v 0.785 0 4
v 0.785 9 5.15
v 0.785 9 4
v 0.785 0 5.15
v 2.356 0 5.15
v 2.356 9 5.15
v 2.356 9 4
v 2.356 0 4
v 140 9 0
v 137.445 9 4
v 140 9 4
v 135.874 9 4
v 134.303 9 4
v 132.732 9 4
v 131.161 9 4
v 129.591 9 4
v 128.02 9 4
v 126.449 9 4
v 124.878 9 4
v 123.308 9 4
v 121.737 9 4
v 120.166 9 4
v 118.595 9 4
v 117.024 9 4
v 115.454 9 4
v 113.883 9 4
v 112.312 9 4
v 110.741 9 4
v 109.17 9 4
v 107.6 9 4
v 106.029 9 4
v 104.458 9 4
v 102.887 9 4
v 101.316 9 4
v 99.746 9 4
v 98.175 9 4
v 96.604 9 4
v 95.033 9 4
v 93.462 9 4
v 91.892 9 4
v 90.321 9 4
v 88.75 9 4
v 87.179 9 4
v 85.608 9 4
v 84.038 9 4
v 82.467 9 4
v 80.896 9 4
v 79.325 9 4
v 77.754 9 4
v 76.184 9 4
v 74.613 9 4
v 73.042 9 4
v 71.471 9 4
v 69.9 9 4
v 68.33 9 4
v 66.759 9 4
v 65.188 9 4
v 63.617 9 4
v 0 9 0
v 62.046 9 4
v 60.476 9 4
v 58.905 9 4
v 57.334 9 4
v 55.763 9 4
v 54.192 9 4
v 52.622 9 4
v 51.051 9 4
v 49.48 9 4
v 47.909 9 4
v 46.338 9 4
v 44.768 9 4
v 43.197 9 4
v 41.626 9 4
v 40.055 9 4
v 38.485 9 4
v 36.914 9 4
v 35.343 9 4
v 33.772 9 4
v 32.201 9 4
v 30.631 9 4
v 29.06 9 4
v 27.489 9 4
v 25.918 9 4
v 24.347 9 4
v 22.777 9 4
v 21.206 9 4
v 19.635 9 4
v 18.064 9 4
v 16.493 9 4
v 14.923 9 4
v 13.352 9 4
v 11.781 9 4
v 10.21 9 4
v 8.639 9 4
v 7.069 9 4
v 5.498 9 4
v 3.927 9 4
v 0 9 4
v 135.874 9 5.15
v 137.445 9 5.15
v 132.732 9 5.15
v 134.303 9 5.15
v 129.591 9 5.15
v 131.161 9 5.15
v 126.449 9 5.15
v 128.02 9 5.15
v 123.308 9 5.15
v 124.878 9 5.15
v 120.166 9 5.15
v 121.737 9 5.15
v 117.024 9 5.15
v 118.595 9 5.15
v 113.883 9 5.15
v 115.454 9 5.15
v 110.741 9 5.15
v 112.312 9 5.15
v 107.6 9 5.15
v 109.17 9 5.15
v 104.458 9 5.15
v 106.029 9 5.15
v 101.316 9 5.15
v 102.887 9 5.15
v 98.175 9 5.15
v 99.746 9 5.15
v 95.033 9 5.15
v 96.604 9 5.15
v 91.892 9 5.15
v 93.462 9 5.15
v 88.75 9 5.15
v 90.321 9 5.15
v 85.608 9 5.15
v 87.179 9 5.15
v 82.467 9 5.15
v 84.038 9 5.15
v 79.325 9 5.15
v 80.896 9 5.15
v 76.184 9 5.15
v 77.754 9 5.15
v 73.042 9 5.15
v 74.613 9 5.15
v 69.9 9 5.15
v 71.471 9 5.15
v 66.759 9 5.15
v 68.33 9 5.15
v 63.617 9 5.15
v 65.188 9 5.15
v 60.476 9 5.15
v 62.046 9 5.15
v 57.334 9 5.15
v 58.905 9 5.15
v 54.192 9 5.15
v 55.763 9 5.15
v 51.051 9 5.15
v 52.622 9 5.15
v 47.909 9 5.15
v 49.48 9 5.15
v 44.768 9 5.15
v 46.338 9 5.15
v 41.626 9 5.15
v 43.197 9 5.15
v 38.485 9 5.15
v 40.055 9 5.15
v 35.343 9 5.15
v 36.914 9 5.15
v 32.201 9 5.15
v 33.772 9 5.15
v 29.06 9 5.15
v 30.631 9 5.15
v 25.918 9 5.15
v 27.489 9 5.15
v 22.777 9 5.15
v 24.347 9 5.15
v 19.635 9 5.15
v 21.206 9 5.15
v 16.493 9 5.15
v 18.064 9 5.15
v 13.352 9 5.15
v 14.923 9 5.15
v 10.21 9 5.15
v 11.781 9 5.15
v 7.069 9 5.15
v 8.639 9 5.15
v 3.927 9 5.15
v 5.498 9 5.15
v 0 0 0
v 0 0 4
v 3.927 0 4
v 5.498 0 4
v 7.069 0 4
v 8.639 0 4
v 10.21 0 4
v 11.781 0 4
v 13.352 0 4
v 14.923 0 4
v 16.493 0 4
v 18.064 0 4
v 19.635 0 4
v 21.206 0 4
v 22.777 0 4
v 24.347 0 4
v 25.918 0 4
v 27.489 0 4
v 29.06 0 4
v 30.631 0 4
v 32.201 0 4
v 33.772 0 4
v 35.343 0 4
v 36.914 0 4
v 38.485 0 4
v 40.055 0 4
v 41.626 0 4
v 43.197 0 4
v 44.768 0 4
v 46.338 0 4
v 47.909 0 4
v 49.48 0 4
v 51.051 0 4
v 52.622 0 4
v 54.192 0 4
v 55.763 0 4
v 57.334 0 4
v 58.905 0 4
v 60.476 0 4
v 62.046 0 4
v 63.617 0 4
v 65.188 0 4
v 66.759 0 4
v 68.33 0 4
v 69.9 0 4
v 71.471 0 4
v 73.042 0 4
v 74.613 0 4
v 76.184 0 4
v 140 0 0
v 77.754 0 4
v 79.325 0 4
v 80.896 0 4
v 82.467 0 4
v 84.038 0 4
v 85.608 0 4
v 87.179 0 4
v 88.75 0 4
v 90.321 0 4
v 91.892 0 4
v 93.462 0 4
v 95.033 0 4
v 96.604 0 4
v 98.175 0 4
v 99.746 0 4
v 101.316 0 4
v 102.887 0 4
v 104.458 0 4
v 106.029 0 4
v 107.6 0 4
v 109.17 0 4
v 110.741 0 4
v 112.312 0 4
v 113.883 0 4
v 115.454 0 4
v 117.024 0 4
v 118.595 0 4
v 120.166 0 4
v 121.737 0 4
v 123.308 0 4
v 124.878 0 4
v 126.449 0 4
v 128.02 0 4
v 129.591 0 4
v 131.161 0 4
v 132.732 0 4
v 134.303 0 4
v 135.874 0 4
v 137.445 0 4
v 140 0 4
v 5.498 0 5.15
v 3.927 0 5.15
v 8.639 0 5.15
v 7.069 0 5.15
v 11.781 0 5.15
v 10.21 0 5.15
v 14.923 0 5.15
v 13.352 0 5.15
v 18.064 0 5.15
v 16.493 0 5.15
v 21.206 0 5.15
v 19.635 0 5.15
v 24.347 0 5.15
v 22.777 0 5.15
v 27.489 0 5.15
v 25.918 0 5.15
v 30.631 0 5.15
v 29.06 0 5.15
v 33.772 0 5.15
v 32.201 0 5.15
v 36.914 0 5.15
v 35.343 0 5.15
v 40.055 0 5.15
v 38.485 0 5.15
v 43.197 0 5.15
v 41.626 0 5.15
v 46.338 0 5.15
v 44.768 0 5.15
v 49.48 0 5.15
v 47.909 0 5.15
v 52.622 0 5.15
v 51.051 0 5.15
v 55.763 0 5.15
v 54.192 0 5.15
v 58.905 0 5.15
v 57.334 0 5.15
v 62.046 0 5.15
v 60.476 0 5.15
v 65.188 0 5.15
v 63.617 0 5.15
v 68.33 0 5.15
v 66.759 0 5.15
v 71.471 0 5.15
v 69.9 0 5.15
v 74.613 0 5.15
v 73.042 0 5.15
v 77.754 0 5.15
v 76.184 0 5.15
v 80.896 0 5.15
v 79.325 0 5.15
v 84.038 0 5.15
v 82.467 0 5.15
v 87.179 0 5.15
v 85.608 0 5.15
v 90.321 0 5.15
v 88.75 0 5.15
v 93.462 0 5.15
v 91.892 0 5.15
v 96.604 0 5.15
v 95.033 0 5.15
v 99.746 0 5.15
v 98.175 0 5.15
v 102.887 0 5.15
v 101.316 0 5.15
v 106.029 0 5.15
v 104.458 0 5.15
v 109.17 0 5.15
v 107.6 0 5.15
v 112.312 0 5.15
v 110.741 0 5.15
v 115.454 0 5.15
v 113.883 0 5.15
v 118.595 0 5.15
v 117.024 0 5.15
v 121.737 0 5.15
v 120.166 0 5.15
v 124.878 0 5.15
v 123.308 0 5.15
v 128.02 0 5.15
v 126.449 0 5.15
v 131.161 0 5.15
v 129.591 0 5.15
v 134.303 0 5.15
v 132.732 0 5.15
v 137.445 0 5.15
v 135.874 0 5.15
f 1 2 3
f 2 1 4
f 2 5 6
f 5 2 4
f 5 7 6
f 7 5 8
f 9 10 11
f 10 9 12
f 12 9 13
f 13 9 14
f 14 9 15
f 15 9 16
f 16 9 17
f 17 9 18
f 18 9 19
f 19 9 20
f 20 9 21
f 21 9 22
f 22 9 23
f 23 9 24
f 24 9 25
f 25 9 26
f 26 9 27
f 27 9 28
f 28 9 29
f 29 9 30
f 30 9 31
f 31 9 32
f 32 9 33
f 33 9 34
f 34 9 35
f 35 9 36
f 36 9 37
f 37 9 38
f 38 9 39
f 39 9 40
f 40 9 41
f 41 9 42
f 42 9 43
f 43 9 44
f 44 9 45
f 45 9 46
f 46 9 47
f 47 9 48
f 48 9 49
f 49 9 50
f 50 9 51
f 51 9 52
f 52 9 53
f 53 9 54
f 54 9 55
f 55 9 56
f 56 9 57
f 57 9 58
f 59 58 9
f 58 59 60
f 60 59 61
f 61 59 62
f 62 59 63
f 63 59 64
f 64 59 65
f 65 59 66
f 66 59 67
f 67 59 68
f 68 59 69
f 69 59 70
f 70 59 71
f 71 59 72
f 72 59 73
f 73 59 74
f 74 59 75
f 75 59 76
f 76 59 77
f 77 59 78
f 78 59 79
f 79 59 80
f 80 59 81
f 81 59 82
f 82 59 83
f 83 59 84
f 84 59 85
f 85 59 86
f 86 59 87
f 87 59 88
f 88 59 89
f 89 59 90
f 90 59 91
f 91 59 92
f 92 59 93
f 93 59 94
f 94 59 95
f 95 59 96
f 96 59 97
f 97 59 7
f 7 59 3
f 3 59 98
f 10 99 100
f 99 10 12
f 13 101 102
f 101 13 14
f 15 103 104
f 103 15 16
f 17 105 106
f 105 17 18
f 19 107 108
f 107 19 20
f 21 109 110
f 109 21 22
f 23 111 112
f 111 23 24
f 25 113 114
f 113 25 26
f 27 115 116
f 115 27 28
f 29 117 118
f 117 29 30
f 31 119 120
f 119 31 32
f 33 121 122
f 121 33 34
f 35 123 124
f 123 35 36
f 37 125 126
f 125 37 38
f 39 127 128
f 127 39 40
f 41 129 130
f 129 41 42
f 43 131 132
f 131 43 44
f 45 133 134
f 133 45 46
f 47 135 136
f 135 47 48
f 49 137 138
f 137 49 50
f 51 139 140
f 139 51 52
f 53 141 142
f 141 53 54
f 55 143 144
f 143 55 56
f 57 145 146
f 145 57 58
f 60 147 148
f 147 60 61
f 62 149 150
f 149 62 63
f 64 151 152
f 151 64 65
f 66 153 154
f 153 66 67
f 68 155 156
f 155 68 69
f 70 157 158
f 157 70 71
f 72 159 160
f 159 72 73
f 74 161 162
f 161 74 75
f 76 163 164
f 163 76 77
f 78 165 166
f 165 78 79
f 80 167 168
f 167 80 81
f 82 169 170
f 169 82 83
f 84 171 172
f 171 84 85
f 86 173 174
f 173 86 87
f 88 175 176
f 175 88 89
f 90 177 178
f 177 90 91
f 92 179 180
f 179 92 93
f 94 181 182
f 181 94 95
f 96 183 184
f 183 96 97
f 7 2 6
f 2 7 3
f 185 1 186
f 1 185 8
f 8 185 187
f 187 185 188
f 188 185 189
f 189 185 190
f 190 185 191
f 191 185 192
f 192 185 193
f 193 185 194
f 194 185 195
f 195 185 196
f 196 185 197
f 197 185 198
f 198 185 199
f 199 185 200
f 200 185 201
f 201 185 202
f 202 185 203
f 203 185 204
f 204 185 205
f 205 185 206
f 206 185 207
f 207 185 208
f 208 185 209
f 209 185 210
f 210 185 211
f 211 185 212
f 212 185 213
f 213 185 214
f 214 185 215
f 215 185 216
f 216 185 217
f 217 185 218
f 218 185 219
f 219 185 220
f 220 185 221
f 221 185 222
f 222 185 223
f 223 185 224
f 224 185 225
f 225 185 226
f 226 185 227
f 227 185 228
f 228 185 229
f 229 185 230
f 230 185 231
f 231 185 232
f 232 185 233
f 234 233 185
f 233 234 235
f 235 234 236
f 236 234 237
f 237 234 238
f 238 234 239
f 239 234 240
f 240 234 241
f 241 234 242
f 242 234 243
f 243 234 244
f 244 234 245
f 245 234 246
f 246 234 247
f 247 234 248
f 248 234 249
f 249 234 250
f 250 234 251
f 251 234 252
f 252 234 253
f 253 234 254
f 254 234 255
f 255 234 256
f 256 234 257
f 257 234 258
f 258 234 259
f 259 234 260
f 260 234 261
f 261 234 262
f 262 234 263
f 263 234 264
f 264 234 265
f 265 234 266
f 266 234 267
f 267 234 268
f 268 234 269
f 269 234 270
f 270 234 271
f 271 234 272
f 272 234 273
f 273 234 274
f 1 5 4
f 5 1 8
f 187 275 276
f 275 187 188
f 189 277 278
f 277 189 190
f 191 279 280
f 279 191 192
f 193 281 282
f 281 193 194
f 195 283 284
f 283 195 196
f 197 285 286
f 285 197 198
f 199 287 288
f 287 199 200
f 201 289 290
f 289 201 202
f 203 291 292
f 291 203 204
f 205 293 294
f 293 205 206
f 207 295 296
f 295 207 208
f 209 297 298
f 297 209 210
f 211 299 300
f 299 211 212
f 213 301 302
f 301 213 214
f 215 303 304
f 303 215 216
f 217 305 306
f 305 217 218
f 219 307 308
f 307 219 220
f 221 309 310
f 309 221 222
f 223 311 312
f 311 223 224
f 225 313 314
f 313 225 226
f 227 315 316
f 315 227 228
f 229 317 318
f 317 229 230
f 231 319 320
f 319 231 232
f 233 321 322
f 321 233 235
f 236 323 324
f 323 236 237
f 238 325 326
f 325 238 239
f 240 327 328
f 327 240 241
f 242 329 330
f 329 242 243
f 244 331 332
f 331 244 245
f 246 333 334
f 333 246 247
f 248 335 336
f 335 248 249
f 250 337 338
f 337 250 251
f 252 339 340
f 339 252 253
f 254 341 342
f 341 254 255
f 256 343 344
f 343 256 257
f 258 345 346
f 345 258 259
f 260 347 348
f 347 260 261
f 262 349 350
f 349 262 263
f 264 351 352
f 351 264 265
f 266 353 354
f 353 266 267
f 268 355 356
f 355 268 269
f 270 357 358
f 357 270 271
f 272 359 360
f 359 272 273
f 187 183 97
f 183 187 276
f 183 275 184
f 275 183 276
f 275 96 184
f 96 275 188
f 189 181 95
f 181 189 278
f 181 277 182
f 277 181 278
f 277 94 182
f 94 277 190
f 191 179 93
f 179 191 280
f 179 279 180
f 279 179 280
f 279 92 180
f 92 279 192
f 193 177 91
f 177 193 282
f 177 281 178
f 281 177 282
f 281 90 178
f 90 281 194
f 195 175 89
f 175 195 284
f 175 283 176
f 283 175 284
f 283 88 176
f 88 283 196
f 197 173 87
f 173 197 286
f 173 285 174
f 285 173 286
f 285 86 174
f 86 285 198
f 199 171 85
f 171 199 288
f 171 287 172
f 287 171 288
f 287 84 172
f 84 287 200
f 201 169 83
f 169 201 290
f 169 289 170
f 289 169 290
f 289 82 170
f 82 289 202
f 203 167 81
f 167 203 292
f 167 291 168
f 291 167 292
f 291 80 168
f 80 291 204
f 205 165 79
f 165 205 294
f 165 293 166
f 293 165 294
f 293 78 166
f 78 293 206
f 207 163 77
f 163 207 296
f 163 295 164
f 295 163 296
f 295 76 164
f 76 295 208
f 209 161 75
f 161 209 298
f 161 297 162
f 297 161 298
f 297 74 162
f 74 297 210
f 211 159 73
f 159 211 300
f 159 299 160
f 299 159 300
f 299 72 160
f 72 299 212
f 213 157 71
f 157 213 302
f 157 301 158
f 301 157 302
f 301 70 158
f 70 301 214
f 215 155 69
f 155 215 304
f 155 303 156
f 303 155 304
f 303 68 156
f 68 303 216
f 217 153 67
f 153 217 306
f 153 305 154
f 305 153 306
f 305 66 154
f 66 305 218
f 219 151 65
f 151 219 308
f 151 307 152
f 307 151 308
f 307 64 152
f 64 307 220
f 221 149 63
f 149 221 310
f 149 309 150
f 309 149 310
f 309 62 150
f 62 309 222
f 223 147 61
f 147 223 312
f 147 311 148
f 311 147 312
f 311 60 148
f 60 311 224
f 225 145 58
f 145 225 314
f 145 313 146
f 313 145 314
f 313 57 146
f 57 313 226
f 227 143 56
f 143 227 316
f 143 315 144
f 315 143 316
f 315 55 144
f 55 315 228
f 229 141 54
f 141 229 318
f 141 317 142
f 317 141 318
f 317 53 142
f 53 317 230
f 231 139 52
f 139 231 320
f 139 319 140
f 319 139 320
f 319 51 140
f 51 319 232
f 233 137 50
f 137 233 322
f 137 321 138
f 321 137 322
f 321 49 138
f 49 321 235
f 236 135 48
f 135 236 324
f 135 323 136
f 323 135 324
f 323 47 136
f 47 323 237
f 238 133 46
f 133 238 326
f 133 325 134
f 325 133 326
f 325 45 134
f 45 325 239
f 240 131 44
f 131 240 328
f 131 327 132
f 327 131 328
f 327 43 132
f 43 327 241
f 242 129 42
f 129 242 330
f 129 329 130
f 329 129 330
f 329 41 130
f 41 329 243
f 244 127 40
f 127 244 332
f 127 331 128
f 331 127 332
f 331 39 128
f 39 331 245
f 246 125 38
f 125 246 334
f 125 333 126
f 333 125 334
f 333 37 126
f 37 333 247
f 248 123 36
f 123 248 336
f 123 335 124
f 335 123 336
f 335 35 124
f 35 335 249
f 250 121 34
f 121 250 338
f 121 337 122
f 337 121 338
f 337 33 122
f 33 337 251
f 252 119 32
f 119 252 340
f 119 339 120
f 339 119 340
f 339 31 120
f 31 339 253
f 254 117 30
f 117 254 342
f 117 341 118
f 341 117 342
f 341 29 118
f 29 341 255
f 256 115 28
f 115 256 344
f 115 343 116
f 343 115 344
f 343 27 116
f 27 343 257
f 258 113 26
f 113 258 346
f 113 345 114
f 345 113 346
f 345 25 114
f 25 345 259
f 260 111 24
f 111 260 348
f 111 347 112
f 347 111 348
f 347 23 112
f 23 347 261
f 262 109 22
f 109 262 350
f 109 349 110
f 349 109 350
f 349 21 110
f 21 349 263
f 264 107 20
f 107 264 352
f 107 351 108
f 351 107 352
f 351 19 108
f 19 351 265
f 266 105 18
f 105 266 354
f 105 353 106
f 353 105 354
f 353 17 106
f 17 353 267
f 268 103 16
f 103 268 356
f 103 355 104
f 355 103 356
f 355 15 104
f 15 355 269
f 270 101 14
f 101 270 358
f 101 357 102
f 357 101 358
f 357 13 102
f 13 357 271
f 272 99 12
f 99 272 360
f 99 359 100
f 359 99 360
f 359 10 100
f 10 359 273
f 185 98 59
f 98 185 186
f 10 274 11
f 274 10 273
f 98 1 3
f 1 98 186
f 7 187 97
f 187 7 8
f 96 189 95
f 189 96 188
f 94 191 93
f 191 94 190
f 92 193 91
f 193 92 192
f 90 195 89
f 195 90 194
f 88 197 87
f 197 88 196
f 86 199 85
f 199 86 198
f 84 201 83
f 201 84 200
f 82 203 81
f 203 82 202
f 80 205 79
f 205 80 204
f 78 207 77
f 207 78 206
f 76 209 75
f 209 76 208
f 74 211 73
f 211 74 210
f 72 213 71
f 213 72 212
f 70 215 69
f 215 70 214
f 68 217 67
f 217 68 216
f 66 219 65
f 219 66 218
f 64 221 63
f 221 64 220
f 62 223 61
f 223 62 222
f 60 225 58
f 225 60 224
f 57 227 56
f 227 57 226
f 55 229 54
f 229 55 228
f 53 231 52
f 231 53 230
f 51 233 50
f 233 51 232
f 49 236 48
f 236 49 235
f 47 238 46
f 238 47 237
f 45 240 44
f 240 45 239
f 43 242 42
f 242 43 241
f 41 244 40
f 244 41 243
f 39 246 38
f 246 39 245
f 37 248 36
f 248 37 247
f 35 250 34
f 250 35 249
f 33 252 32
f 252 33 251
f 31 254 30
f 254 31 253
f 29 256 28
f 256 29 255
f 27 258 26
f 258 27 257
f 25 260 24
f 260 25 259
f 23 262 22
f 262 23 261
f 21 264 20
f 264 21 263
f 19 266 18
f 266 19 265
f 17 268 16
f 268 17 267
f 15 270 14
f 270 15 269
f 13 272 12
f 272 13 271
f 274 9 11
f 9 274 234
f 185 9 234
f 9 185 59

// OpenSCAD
// file: rack_params.scad
// 推出模块共享参数 - 所有零件文件和装配预览文件通过 include 引用此文件
// 此文件仅放参数定义（变量赋值），不放任何 geometry 语句

// ---------- 底板参数 (引用自 sliding_track_base.scad) ----------
base_w   = 30;
base_l   = 90;
base_t   = 5;
groove_w = 26;
groove_d = 1.5;

// ---------- 齿条参数 ----------
modulus     = 1.0;                    // 齿轮模数
pitch       = PI * modulus;           // 齿距 p
addendum    = 1.0 * modulus;          // 齿顶高
dedendum    = 1.2 * modulus;          // 齿根高
tooth_thick = pitch / 2;              // 齿厚

rack_w     = 8;                       // 齿条宽 (X)
rack_thick = 3.5;                     // 齿条厚 (Z) - 仅含齿高部分（与齿轮啮合计算用）
rack_base_h = 5;                      // 齿条基体加厚高度（专门为底部粘贴预留），不含齿高
rack_len   = 140;                     // 齿条长 (Y) — 由原 70mm 改为 140mm
tooth_cnt  = floor(rack_len / pitch); // 齿条齿数

// ---------- 推头参数 ----------
pusher_w     = 23;                    // 推头宽 (< groove_w=26)
pusher_tab_t = 1.5;                   // 竖板厚 (< groove_d=1.5)
pusher_arm_t = 1.5;                   // 横板厚
blocker_h    = 20;                    // 竖板总高度（从齿条顶面起算）= 底板厚(5) + 药盒高(13.5) + 余量(1.5)
                                     //  作用：推头到达行程终点时高出底板 15mm 堵住上方药匣出药口

// ---------- 齿轮参数 ----------
gear_teeth   = 20;                    // 齿轮齿数
gear_r       = gear_teeth * modulus / 2;   // 分度圆半径
gear_outer_r = gear_r + addendum;          // 齿顶圆半径
gear_root_r  = gear_r - dedendum;          // 齿根圆半径
gear_w       = rack_w;                     // 齿轮厚度 (Z)
shaft_d      = 6.5;                         // 电机轴径（6.5mm 轴孔）
shaft_len    = 20;                         // 轴长

// ---------- 轴座参数 ----------
bearing_block_w = 12;
bearing_block_d = 10;
bearing_block_h = 8;
bearing_hole_d  = 6.7;                     // 6.5mm电机轴 + 0.2mm间隙
mount_hole_d    = 3.2;                     // M3 安装孔

// ---------- 装配坐标 ----------
rack_x   = (base_w - rack_w) / 2;         // 齿条X起点 (底板X中心)
rack_z   = -rack_thick;                   // 齿条Z底面 (底板Z=0下方)
rack_y0  = -20;                           // 齿条Y起点 (在底板Y=0外)

gear_cx = base_w / 2;                     // 齿轮X中心
gear_cy = base_l - 5;                     // 齿轮Y中心 (底板Y=90末端内侧)
gear_cz = rack_z + rack_thick / 2;        // 齿轮Z中心 (齿条厚度中线)

bearing_y   = gear_cy;                    // 轴座Y中心
mount_inset = 5;
eps         = 0.01;
// main file
// 齿带 - 打印版（齿与板 union 在一起）
// 坐标系：齿带左下角 (X=0, Y=0, Z=0) 在底面
// 来源：齿带修复方案/方案1_齿带参数修改/装配图/齿带齿轮装配图.scad
// 原版齿和板是分开的，无法打印，改成 union

include <rack_params.scad>

// ====== 方案1修复参数（与原装配图保持一致）======
// 加厚提高刚性：弯曲刚度与厚度的三次方成正比
// 2.5→4.0mm，刚度提升 4.1 倍
rack_sleeve_thick = 4.0;    // 齿带本体厚度 (原 1.0→2.5→4.0)
rack_w_extended = 9.0;      // 齿带宽度 (8→9mm)
teeth_height_belt = 1.2;    // 齿高 (1.0→1.2mm)

// ====== 齿带（齿与板 union，可直接打印）======
module rack_belt_solid() {
    // 齿形先做出来，再与板 union
    union() {
        // 齿带本体（板）
        cube([rack_len, rack_w_extended, rack_sleeve_thick]);

        // 齿形（粘在齿带顶面，0.05mm overlap 避免非流形）
        for (i = [0 : tooth_cnt - 1]) {
            translate([i * pitch + tooth_thick/2, 0, rack_sleeve_thick - 0.05])
                cube([tooth_thick, rack_w_extended, teeth_height_belt]);
        }
    }
}

rack_belt_solid();
